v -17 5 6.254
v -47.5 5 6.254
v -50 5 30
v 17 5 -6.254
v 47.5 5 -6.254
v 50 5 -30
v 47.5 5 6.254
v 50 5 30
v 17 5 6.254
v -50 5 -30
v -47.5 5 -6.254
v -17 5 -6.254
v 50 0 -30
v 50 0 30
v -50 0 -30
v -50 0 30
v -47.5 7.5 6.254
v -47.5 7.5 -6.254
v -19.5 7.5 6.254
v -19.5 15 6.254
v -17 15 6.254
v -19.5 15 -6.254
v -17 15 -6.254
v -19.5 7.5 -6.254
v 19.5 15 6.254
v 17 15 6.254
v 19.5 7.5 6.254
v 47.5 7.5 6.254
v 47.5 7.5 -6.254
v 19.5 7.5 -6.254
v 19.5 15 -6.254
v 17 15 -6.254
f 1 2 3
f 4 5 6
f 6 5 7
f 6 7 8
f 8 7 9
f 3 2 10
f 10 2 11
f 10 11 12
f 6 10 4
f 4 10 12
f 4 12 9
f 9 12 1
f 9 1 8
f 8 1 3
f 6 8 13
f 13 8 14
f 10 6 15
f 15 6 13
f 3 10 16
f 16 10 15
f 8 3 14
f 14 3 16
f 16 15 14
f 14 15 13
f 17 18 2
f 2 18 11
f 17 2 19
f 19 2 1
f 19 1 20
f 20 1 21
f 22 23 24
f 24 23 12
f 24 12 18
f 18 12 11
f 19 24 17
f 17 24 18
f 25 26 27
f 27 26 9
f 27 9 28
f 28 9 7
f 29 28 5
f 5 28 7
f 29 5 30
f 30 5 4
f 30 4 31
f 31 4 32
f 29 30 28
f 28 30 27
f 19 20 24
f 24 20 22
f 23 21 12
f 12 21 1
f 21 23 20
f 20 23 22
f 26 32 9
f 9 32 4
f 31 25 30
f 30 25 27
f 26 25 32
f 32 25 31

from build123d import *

# Parameters (mm, degrees)
SKETCH2_W           = 100
SKETCH2_H           = 60
BOSS_EXTRUDE1_DEPTH = 5
SKETCH4_W           = 28
SKETCH4_H           = 12.508
BOSS_EXTRUDE2_DEPTH = 2.5
SKETCH5_W           = 2.5
SKETCH5_H           = 12.508
BOSS_EXTRUDE3_DEPTH = 10


with BuildPart() as part:
    # Sketch2 → Boss-Extrude1 (new body)
    with BuildSketch(Plane(origin=(0, 0, 0), x_dir=(1, 0, 0), z_dir=(0, 1, 0))):
        Rectangle(SKETCH2_W, SKETCH2_H)
    extrude(amount=BOSS_EXTRUDE1_DEPTH)

    # Sketch4 → Boss-Extrude2 (add)
    with BuildSketch(Plane(origin=(0, 5, 0), x_dir=(1, 0, 0), z_dir=(0, 1, 0))):
        with Locations((-33.5, 0)):
            Rectangle(SKETCH4_W, SKETCH4_H)
        with Locations((33.5, 0)):
            Rectangle(SKETCH4_W, SKETCH4_H)
    extrude(amount=BOSS_EXTRUDE2_DEPTH)

    # Sketch5 → Boss-Extrude3 (add)
    with BuildSketch(Plane(origin=(0, 5, 0), x_dir=(1, 0, 0), z_dir=(0, 1, 0))):
        with Locations((-18.25, 0)):
            Rectangle(SKETCH5_W, SKETCH5_H)
        with Locations((18.25, 0)):
            Rectangle(SKETCH5_W, SKETCH5_H)
    extrude(amount=BOSS_EXTRUDE3_DEPTH)


solid = part.part
